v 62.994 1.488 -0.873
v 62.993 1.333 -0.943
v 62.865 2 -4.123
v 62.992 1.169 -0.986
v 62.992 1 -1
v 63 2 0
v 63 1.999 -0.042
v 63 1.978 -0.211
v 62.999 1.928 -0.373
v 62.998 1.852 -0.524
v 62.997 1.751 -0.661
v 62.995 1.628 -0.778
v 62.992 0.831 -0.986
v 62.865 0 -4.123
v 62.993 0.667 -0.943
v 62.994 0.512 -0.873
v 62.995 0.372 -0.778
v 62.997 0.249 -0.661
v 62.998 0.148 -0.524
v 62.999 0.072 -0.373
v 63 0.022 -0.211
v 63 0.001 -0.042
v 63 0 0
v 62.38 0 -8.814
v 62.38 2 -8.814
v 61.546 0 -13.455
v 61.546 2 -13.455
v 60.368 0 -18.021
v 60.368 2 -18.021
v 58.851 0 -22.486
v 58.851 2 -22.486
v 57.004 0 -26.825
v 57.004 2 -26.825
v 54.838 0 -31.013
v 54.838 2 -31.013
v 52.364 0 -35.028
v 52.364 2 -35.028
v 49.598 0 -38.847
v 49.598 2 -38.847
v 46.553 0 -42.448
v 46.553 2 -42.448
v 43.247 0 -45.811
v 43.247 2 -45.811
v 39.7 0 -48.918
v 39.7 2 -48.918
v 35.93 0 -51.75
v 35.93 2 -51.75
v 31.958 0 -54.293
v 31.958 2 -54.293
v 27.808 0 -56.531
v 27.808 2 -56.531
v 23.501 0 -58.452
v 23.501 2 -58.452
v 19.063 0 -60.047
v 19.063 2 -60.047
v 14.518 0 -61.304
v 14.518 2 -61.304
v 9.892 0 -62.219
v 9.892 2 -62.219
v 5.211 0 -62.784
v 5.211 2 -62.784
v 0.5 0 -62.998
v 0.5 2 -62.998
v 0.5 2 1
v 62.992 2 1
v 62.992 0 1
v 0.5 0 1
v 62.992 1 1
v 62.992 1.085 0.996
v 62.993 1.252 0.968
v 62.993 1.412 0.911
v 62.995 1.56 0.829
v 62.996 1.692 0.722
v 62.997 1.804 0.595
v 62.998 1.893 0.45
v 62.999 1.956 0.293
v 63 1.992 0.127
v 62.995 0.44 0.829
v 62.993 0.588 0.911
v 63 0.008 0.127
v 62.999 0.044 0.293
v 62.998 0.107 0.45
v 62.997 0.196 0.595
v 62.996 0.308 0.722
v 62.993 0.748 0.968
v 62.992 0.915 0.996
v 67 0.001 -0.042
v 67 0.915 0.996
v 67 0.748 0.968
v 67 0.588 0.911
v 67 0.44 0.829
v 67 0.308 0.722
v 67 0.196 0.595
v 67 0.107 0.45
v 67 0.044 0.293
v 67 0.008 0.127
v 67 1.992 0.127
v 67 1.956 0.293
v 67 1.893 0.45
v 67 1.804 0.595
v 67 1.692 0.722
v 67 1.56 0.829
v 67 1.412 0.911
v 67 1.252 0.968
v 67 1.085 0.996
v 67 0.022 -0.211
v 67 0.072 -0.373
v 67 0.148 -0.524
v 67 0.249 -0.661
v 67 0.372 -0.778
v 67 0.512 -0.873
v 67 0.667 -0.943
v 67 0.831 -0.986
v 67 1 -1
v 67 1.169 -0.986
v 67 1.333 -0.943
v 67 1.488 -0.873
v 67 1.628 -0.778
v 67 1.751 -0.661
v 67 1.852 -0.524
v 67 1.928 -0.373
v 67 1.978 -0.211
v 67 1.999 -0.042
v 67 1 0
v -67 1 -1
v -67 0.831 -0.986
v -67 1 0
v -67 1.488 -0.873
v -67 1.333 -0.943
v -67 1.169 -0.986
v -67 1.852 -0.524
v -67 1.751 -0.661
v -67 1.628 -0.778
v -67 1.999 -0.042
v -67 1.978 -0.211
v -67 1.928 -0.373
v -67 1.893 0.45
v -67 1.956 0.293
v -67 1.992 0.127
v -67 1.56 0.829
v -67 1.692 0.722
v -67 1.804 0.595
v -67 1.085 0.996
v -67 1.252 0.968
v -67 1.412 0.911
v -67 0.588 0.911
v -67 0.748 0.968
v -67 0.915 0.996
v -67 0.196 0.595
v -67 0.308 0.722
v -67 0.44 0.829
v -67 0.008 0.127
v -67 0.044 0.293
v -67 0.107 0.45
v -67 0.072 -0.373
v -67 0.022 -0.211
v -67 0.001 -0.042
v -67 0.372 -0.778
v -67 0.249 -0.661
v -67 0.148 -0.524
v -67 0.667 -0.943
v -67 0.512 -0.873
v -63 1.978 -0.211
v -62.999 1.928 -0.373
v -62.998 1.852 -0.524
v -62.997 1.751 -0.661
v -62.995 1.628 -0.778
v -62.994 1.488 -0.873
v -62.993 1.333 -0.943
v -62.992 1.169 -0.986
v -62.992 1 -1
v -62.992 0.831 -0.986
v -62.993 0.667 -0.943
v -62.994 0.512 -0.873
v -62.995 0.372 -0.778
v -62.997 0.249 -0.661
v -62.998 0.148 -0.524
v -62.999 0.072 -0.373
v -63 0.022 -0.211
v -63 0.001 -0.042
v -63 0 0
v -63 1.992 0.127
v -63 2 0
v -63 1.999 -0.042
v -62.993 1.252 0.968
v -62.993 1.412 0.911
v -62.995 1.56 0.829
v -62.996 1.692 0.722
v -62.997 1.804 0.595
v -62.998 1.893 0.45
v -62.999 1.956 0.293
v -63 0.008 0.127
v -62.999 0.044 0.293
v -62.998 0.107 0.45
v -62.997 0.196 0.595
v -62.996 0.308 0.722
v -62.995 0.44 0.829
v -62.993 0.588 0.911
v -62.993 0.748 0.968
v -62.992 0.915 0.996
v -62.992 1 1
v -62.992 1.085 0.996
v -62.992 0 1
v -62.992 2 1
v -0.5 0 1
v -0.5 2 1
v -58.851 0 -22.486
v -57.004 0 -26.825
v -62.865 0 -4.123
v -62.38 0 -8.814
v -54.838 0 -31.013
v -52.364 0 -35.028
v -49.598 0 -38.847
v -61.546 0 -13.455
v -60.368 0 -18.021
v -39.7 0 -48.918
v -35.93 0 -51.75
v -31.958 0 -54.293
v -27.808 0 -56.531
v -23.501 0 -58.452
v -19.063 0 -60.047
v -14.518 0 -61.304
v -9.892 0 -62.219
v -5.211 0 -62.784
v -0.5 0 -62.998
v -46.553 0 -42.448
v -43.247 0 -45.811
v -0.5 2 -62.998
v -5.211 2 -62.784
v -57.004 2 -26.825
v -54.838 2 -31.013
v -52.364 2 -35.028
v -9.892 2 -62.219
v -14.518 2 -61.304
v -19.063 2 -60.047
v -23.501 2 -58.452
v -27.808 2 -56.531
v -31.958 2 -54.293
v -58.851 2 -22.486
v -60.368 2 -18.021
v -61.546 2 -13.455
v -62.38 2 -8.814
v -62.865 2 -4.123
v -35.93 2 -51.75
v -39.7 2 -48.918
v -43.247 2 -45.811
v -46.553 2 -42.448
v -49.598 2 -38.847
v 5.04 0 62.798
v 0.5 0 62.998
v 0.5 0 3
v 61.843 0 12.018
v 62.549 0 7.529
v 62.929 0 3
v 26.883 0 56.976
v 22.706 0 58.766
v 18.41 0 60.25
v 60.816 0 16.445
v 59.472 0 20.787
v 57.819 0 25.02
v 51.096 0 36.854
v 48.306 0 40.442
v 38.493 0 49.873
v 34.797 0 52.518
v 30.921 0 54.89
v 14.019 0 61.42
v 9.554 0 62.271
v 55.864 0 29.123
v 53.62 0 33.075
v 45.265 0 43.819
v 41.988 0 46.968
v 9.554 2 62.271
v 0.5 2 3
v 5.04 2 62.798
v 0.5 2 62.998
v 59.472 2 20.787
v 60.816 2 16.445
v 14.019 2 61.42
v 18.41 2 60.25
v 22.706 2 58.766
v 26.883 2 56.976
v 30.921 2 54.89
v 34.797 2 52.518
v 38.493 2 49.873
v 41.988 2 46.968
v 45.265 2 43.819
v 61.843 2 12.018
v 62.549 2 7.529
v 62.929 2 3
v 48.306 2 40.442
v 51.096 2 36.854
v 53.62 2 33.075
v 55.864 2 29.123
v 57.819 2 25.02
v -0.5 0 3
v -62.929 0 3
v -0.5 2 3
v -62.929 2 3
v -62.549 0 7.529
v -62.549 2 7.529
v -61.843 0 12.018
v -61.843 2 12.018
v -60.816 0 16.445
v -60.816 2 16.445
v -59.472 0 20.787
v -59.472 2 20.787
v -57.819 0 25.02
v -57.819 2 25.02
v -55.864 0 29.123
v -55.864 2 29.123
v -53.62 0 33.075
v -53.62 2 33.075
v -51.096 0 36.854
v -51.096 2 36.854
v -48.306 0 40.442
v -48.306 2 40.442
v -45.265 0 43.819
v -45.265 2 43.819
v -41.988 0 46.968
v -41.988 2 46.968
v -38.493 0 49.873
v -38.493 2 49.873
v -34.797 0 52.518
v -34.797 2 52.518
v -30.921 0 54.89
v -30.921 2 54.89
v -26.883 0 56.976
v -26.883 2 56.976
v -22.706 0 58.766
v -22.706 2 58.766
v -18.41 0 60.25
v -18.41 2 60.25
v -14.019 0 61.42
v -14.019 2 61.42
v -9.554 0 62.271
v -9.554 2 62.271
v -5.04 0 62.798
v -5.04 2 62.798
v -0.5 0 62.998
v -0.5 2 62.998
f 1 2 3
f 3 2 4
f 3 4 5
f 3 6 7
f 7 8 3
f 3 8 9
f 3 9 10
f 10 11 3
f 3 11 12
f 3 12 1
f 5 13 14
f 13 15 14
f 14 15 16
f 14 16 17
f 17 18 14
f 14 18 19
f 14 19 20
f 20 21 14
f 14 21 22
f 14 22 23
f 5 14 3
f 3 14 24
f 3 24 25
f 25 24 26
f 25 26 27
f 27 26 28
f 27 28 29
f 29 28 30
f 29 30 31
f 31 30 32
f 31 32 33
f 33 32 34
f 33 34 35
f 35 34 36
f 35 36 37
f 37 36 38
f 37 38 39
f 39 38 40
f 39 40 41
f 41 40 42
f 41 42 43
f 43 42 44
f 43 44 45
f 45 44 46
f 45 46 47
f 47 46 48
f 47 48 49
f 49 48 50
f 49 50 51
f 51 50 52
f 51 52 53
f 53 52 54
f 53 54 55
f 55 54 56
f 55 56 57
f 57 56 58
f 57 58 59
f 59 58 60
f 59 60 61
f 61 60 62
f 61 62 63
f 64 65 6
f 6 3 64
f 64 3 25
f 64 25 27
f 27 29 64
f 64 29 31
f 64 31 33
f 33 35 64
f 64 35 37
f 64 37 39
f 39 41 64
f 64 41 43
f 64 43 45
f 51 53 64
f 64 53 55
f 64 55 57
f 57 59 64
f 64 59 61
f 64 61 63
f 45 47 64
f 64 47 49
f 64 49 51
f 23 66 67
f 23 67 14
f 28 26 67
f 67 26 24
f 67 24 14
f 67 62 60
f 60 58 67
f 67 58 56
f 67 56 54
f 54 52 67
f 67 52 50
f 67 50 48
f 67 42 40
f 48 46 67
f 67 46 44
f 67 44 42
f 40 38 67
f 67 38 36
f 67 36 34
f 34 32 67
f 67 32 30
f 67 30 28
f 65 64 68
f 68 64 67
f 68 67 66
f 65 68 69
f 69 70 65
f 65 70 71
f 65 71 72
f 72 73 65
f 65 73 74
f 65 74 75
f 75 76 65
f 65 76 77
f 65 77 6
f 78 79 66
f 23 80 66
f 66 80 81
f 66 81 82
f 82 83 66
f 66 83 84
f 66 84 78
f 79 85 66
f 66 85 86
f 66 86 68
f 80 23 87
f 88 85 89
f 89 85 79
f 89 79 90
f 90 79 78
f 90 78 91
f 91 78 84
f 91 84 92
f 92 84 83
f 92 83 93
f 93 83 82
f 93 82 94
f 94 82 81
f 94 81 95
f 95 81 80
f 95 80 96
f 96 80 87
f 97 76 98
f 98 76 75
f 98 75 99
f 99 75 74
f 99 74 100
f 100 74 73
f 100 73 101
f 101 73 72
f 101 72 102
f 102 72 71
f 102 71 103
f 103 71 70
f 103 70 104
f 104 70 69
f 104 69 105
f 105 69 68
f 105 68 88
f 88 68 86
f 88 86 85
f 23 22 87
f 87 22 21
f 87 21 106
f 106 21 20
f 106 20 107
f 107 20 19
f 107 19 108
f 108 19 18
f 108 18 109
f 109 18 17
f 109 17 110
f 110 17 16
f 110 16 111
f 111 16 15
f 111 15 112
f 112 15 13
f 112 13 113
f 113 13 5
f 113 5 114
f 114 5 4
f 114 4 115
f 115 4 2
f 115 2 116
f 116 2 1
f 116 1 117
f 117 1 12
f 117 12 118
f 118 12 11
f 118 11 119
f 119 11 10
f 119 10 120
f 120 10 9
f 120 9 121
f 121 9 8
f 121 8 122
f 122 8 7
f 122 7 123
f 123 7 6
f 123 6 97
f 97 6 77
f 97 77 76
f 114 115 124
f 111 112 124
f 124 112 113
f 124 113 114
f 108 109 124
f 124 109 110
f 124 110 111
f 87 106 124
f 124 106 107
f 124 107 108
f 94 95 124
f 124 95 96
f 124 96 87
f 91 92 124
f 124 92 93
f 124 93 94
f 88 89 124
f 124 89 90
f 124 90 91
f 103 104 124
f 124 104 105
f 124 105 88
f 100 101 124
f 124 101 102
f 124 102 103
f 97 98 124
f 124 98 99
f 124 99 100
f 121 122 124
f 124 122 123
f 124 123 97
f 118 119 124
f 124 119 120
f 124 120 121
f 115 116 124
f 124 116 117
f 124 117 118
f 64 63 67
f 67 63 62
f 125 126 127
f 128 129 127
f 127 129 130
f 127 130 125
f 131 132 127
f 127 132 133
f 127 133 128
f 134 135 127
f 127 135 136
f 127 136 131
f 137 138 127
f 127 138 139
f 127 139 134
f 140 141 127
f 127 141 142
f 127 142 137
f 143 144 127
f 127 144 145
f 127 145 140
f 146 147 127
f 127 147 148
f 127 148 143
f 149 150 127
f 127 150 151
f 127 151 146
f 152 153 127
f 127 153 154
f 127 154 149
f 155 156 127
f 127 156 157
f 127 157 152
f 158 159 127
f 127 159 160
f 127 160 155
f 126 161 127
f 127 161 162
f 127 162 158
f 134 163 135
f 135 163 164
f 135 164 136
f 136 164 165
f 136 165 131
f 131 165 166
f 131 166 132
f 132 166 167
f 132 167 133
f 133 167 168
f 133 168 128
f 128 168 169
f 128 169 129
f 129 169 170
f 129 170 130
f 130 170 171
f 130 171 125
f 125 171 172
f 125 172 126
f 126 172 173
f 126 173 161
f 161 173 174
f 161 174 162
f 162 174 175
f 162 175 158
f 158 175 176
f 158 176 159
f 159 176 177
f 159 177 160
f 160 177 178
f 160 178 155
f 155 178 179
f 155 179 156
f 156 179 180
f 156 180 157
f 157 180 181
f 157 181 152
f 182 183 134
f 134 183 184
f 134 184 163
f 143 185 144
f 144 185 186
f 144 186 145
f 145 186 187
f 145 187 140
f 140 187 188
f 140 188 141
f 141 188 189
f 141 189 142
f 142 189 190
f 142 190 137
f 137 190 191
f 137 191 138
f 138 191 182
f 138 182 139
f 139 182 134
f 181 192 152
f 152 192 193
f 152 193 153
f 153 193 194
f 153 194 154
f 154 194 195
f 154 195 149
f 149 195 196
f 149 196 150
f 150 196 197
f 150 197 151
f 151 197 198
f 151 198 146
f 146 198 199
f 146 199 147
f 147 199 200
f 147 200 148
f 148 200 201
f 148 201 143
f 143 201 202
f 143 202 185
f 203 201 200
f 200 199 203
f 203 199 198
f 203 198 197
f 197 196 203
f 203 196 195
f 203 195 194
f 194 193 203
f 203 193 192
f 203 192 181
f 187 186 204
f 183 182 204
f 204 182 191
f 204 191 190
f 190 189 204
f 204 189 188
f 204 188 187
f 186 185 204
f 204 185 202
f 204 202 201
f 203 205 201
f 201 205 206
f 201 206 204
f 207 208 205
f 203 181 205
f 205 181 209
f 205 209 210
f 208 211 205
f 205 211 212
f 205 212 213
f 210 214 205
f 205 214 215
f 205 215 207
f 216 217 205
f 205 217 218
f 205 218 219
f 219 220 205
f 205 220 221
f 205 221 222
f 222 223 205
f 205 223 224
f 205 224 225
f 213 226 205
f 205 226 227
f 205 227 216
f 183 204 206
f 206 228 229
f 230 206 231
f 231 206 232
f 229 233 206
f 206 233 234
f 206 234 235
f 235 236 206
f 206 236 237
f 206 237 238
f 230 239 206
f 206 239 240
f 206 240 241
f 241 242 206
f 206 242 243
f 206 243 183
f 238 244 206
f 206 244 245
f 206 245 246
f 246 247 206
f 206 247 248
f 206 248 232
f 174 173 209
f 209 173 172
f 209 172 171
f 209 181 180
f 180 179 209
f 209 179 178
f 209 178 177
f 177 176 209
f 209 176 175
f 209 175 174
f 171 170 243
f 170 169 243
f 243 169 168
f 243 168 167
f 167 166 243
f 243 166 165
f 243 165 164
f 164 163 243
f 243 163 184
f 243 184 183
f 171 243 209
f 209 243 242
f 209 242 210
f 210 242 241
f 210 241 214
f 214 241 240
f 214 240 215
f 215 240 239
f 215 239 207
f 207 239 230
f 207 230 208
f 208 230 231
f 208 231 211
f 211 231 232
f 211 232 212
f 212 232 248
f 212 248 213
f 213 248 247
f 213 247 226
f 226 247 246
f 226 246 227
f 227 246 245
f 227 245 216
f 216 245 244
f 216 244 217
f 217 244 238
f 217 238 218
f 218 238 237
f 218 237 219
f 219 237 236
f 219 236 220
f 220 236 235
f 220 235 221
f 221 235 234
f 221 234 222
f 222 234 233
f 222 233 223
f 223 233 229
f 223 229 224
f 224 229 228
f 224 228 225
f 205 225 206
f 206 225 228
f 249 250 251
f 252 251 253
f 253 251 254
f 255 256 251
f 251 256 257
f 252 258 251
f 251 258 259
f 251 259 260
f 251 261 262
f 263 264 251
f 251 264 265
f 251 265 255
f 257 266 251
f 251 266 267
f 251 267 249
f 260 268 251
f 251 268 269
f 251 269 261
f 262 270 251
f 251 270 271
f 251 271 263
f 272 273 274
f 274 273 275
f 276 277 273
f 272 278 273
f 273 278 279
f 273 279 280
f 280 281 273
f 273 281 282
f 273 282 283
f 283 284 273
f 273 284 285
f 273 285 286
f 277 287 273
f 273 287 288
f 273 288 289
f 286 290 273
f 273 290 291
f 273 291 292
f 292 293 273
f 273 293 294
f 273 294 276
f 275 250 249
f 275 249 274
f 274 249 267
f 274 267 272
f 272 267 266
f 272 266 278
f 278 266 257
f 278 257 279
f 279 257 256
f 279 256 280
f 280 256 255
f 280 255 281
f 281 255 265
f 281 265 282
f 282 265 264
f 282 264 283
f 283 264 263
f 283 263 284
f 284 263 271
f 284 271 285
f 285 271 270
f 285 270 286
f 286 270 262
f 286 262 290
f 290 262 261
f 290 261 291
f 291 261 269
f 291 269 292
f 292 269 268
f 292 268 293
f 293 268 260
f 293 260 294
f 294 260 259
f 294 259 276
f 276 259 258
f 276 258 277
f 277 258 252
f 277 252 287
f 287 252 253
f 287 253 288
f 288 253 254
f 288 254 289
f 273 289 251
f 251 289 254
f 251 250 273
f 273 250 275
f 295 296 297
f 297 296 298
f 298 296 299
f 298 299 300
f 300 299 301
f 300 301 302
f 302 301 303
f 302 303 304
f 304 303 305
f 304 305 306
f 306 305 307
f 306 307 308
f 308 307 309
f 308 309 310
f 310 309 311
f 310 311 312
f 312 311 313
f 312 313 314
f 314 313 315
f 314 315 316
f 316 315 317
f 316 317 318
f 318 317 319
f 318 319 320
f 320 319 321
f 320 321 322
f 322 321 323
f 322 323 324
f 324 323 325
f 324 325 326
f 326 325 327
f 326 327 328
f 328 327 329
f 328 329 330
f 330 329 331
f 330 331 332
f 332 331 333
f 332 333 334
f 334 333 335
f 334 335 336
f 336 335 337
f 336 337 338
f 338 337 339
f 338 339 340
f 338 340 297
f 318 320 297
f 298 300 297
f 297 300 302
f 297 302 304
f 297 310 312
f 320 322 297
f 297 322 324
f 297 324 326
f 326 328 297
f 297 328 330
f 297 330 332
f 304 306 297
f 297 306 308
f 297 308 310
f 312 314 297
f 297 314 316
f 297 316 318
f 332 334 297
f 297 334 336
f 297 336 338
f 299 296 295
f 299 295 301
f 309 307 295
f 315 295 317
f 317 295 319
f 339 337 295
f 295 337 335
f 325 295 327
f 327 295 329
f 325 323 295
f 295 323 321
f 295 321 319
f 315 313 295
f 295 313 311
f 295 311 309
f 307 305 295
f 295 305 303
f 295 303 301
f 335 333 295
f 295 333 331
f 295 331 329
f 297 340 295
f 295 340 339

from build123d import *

# Parameters (mm, degrees)
SKETCH_1_R           = 63
EXTRUDE_1_DEPTH      = 2
EXTRUDE_2_DEPTH      = 67
EXTRUDE_2_DEPTH_BACK = 67
SKETCH_4_R           = 1
CUT_EXTRUDE_2_DEPTH  = 92.989129936
CUT_EXTRUDE_4_DEPTH  = 92.989129936
SKETCH_9_W           = 1
SKETCH_9_H           = 75.08863074
CUT_EXTRUDE_5_DEPTH  = 92.989129868


with BuildPart() as part:
    # Эскиз1 → Бобышка-Вытянуть1 (new body)
    with BuildSketch(Plane(origin=(0, 0, 0), x_dir=(1, 0, 0), z_dir=(0, 1, 0))):
        Circle(SKETCH_1_R)
    extrude(amount=EXTRUDE_1_DEPTH)

    # Эскиз4 → Бобышка-Вытянуть2 (add, two sides: drawn at the far end of the back side and taken through both)
    with BuildSketch(Plane(origin=(0, 0, 0), x_dir=(0, 0, -1), z_dir=(1, 0, 0)).offset(-EXTRUDE_2_DEPTH_BACK)):
        with Locations((0, 1)):
            Circle(SKETCH_4_R)
    extrude(amount=EXTRUDE_2_DEPTH + EXTRUDE_2_DEPTH_BACK)

    # Эскиз5 → Вырез-Вытянуть2 (cut, through all)
    with BuildSketch(Plane(origin=(0, 2, 0), x_dir=(1, 0, 0), z_dir=(0, 1, 0))):
        with BuildLine():
            Line((62.992062992, -1), (-62.992063039, -1))
            ThreePointArc((-62.992062992, -0.999999999), (-62.968237953, -2.000252254), (-62.92853089, -3))
            Line((-62.92853089, -3), (62.92853089, -3))
            ThreePointArc((62.92853089, -3), (62.968237953, -2.000252255), (62.992062992, -1))
        make_face()
    extrude(amount=-CUT_EXTRUDE_2_DEPTH, mode=Mode.SUBTRACT)


with BuildPart() as cut_extrude_2_piece_1:
    # of the separate pieces the step leaves, piece 1, a body of its own (cut_extrude_2_pieces)
    add(part.part.solids().sort_by_distance((63, 0, 0))[0])

    # Эскиз8 → Вырез-Вытянуть4 (cut, through all)
    with BuildSketch(Plane(origin=(0, 2, 0), x_dir=(1, 0, 0), z_dir=(0, 1, 0))):
        Polygon((0, 66.190632404), (-0.5, 66.190632404), (-0.5, -2.025113876), (0.5, -2.025113876), (0.5, 66.190632404), align=None)
    extrude(amount=-CUT_EXTRUDE_4_DEPTH, mode=Mode.SUBTRACT)


with BuildPart() as cut_extrude_2_piece_2:
    # of the separate pieces the step leaves, piece 2, a body of its own (cut_extrude_2_pieces)
    add(part.part.solids().sort_by_distance((-62.92853089, 0, 3))[0])

    # Эскиз9 → Вырез-Вытянуть5 (cut, through all)
    with BuildSketch(Plane(origin=(0, 2, 0), x_dir=(1, 0, 0), z_dir=(0, 1, 0))):
        with Locations((0, -38.54431537)):
            Rectangle(SKETCH_9_W, SKETCH_9_H)
    extrude(amount=-CUT_EXTRUDE_5_DEPTH, mode=Mode.SUBTRACT)


with BuildPart() as cut_extrude_4_piece_1:
    # of the separate pieces the step leaves, piece 1, a body of its own (cut_extrude_4_pieces)
    add(cut_extrude_2_piece_1.part.solids().sort_by_distance((-0.5, 0, -62.998015842))[0])


with BuildPart() as cut_extrude_4_piece_2:
    # of the separate pieces the step leaves, piece 2, a body of its own (cut_extrude_4_pieces)
    add(cut_extrude_2_piece_1.part.solids().sort_by_distance((63, 0, 0))[0])


with BuildPart() as cut_extrude_5_piece_1:
    # of the separate pieces the step leaves, piece 1, a body of its own (cut_extrude_5_pieces)
    add(cut_extrude_2_piece_2.part.solids().sort_by_distance((-62.92853089, 0, 3))[0])


with BuildPart() as cut_extrude_5_piece_2:
    # of the separate pieces the step leaves, piece 2, a body of its own (cut_extrude_5_pieces)
    add(cut_extrude_2_piece_2.part.solids().sort_by_distance((0.5, 0, 62.998015842))[0])


solid = Compound([cut_extrude_4_piece_1.part, cut_extrude_4_piece_2.part, cut_extrude_5_piece_1.part, cut_extrude_5_piece_2.part])
